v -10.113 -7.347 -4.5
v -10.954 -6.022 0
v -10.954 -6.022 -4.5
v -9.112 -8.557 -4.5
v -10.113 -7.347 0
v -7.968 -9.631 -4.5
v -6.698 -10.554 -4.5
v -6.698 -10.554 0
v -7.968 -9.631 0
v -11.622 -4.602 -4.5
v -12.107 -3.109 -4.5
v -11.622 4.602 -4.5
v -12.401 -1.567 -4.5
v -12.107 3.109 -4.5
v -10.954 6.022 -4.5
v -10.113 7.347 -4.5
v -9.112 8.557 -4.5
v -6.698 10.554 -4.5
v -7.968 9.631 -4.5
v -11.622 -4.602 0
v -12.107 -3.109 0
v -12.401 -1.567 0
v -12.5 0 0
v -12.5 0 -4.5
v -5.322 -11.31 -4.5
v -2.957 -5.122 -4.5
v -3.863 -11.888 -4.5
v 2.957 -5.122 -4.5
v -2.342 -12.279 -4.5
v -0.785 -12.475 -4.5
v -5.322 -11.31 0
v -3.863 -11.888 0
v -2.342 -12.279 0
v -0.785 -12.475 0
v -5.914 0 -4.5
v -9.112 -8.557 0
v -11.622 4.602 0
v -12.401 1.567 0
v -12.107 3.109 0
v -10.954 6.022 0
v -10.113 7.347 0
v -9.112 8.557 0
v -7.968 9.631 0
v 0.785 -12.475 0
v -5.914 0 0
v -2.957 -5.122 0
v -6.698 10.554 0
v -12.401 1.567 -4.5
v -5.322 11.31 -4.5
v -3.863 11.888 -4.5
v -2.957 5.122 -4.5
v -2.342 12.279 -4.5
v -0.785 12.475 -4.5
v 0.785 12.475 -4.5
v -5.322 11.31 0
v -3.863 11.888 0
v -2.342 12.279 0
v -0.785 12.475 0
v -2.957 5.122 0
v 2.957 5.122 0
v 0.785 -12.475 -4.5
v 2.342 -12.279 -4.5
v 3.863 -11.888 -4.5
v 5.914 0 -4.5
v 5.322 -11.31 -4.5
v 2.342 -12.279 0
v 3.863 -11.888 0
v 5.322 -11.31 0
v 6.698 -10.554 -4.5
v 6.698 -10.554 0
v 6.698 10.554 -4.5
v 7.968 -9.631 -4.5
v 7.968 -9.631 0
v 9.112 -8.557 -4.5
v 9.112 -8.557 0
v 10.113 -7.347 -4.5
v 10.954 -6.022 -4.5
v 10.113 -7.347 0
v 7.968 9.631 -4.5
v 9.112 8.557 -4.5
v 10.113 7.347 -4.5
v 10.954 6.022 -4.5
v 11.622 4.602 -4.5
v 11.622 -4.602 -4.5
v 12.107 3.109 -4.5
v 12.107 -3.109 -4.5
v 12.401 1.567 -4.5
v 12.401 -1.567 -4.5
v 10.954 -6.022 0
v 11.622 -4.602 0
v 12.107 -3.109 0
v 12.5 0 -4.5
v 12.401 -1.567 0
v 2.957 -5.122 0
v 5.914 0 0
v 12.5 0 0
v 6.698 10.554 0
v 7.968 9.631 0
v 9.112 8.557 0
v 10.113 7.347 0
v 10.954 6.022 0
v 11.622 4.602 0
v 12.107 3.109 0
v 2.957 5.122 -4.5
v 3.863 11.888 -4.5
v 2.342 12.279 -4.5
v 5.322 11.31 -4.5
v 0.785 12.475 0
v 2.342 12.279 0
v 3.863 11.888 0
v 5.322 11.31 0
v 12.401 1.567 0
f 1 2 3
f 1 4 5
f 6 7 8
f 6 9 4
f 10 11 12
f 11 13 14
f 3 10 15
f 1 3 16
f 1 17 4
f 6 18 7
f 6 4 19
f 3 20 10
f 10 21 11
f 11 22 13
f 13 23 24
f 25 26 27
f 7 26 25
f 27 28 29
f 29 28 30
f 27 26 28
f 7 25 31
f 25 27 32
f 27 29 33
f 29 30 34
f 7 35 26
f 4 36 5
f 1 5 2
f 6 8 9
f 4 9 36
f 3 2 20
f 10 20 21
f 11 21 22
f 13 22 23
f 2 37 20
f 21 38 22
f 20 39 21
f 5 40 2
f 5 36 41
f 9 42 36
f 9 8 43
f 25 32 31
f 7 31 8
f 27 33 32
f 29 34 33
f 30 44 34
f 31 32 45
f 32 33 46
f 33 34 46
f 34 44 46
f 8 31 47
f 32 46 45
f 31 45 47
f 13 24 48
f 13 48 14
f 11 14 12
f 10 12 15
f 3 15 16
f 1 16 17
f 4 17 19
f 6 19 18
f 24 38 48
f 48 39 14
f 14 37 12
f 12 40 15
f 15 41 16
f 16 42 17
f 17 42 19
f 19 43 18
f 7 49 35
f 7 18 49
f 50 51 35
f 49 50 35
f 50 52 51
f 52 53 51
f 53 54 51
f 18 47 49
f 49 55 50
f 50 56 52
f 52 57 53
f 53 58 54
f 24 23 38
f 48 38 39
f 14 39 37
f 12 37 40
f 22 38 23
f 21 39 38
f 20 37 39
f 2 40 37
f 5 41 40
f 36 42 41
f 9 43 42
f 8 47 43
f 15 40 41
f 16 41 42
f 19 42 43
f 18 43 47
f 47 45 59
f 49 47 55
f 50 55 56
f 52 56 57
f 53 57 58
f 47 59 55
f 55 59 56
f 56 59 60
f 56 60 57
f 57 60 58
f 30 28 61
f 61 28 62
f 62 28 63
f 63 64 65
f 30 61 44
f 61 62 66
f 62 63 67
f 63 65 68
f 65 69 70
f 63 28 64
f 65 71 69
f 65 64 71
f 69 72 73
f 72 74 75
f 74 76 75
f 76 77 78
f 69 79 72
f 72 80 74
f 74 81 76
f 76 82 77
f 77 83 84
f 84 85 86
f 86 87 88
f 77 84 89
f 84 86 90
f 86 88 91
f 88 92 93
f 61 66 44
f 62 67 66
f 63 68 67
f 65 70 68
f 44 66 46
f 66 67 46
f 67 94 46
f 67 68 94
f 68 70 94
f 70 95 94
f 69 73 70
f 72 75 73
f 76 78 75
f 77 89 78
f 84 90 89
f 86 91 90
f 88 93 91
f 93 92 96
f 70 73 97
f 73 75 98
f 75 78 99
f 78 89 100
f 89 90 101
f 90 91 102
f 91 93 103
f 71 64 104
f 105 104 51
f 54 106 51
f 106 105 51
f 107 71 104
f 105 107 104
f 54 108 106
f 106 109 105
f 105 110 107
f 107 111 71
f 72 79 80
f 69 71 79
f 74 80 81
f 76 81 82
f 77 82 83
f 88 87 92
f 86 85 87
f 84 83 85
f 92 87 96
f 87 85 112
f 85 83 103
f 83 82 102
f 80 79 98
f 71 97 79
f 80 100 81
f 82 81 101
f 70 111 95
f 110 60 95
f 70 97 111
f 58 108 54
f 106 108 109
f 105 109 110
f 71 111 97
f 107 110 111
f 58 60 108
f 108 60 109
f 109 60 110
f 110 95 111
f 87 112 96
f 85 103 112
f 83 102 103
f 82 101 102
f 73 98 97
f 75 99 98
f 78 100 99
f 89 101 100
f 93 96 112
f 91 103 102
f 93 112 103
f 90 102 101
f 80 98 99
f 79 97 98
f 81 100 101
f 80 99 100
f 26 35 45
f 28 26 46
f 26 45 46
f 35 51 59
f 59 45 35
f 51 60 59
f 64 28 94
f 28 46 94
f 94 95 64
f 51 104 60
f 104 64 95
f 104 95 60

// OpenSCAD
$fn = 50;


difference() {
	union() {
		translate(v = [0, 0, -4.5000000000]) {
			cylinder(h = 4.5000000000, r = 12.5000000000);
		}
		#translate(v = [0, 0, -6.0000000000]) {
			cylinder(h = 6, r = 2.8750000000);
		}
	}
	union() {
		translate(v = [0, 0, 0]) {
			rotate(a = [0, 0, 0]) {
				difference() {
					union() {
						translate(v = [0, 0, -5]) {
							linear_extrude(height = 5) {
								polygon(points = [[5.9142500000, 0.0000000000], [2.9571250000, 5.1218907443], [-2.9571250000, 5.1218907443], [-5.9142500000, 0.0000000000], [-2.9571250000, -5.1218907443], [2.9571250000, -5.1218907443]]);
							}
						}
					}
					union();
				}
			}
		}
		#translate(v = [0, 0, -100.0000000000]) {
			cylinder(h = 200, r = 3.2500000000);
		}
	}
}
